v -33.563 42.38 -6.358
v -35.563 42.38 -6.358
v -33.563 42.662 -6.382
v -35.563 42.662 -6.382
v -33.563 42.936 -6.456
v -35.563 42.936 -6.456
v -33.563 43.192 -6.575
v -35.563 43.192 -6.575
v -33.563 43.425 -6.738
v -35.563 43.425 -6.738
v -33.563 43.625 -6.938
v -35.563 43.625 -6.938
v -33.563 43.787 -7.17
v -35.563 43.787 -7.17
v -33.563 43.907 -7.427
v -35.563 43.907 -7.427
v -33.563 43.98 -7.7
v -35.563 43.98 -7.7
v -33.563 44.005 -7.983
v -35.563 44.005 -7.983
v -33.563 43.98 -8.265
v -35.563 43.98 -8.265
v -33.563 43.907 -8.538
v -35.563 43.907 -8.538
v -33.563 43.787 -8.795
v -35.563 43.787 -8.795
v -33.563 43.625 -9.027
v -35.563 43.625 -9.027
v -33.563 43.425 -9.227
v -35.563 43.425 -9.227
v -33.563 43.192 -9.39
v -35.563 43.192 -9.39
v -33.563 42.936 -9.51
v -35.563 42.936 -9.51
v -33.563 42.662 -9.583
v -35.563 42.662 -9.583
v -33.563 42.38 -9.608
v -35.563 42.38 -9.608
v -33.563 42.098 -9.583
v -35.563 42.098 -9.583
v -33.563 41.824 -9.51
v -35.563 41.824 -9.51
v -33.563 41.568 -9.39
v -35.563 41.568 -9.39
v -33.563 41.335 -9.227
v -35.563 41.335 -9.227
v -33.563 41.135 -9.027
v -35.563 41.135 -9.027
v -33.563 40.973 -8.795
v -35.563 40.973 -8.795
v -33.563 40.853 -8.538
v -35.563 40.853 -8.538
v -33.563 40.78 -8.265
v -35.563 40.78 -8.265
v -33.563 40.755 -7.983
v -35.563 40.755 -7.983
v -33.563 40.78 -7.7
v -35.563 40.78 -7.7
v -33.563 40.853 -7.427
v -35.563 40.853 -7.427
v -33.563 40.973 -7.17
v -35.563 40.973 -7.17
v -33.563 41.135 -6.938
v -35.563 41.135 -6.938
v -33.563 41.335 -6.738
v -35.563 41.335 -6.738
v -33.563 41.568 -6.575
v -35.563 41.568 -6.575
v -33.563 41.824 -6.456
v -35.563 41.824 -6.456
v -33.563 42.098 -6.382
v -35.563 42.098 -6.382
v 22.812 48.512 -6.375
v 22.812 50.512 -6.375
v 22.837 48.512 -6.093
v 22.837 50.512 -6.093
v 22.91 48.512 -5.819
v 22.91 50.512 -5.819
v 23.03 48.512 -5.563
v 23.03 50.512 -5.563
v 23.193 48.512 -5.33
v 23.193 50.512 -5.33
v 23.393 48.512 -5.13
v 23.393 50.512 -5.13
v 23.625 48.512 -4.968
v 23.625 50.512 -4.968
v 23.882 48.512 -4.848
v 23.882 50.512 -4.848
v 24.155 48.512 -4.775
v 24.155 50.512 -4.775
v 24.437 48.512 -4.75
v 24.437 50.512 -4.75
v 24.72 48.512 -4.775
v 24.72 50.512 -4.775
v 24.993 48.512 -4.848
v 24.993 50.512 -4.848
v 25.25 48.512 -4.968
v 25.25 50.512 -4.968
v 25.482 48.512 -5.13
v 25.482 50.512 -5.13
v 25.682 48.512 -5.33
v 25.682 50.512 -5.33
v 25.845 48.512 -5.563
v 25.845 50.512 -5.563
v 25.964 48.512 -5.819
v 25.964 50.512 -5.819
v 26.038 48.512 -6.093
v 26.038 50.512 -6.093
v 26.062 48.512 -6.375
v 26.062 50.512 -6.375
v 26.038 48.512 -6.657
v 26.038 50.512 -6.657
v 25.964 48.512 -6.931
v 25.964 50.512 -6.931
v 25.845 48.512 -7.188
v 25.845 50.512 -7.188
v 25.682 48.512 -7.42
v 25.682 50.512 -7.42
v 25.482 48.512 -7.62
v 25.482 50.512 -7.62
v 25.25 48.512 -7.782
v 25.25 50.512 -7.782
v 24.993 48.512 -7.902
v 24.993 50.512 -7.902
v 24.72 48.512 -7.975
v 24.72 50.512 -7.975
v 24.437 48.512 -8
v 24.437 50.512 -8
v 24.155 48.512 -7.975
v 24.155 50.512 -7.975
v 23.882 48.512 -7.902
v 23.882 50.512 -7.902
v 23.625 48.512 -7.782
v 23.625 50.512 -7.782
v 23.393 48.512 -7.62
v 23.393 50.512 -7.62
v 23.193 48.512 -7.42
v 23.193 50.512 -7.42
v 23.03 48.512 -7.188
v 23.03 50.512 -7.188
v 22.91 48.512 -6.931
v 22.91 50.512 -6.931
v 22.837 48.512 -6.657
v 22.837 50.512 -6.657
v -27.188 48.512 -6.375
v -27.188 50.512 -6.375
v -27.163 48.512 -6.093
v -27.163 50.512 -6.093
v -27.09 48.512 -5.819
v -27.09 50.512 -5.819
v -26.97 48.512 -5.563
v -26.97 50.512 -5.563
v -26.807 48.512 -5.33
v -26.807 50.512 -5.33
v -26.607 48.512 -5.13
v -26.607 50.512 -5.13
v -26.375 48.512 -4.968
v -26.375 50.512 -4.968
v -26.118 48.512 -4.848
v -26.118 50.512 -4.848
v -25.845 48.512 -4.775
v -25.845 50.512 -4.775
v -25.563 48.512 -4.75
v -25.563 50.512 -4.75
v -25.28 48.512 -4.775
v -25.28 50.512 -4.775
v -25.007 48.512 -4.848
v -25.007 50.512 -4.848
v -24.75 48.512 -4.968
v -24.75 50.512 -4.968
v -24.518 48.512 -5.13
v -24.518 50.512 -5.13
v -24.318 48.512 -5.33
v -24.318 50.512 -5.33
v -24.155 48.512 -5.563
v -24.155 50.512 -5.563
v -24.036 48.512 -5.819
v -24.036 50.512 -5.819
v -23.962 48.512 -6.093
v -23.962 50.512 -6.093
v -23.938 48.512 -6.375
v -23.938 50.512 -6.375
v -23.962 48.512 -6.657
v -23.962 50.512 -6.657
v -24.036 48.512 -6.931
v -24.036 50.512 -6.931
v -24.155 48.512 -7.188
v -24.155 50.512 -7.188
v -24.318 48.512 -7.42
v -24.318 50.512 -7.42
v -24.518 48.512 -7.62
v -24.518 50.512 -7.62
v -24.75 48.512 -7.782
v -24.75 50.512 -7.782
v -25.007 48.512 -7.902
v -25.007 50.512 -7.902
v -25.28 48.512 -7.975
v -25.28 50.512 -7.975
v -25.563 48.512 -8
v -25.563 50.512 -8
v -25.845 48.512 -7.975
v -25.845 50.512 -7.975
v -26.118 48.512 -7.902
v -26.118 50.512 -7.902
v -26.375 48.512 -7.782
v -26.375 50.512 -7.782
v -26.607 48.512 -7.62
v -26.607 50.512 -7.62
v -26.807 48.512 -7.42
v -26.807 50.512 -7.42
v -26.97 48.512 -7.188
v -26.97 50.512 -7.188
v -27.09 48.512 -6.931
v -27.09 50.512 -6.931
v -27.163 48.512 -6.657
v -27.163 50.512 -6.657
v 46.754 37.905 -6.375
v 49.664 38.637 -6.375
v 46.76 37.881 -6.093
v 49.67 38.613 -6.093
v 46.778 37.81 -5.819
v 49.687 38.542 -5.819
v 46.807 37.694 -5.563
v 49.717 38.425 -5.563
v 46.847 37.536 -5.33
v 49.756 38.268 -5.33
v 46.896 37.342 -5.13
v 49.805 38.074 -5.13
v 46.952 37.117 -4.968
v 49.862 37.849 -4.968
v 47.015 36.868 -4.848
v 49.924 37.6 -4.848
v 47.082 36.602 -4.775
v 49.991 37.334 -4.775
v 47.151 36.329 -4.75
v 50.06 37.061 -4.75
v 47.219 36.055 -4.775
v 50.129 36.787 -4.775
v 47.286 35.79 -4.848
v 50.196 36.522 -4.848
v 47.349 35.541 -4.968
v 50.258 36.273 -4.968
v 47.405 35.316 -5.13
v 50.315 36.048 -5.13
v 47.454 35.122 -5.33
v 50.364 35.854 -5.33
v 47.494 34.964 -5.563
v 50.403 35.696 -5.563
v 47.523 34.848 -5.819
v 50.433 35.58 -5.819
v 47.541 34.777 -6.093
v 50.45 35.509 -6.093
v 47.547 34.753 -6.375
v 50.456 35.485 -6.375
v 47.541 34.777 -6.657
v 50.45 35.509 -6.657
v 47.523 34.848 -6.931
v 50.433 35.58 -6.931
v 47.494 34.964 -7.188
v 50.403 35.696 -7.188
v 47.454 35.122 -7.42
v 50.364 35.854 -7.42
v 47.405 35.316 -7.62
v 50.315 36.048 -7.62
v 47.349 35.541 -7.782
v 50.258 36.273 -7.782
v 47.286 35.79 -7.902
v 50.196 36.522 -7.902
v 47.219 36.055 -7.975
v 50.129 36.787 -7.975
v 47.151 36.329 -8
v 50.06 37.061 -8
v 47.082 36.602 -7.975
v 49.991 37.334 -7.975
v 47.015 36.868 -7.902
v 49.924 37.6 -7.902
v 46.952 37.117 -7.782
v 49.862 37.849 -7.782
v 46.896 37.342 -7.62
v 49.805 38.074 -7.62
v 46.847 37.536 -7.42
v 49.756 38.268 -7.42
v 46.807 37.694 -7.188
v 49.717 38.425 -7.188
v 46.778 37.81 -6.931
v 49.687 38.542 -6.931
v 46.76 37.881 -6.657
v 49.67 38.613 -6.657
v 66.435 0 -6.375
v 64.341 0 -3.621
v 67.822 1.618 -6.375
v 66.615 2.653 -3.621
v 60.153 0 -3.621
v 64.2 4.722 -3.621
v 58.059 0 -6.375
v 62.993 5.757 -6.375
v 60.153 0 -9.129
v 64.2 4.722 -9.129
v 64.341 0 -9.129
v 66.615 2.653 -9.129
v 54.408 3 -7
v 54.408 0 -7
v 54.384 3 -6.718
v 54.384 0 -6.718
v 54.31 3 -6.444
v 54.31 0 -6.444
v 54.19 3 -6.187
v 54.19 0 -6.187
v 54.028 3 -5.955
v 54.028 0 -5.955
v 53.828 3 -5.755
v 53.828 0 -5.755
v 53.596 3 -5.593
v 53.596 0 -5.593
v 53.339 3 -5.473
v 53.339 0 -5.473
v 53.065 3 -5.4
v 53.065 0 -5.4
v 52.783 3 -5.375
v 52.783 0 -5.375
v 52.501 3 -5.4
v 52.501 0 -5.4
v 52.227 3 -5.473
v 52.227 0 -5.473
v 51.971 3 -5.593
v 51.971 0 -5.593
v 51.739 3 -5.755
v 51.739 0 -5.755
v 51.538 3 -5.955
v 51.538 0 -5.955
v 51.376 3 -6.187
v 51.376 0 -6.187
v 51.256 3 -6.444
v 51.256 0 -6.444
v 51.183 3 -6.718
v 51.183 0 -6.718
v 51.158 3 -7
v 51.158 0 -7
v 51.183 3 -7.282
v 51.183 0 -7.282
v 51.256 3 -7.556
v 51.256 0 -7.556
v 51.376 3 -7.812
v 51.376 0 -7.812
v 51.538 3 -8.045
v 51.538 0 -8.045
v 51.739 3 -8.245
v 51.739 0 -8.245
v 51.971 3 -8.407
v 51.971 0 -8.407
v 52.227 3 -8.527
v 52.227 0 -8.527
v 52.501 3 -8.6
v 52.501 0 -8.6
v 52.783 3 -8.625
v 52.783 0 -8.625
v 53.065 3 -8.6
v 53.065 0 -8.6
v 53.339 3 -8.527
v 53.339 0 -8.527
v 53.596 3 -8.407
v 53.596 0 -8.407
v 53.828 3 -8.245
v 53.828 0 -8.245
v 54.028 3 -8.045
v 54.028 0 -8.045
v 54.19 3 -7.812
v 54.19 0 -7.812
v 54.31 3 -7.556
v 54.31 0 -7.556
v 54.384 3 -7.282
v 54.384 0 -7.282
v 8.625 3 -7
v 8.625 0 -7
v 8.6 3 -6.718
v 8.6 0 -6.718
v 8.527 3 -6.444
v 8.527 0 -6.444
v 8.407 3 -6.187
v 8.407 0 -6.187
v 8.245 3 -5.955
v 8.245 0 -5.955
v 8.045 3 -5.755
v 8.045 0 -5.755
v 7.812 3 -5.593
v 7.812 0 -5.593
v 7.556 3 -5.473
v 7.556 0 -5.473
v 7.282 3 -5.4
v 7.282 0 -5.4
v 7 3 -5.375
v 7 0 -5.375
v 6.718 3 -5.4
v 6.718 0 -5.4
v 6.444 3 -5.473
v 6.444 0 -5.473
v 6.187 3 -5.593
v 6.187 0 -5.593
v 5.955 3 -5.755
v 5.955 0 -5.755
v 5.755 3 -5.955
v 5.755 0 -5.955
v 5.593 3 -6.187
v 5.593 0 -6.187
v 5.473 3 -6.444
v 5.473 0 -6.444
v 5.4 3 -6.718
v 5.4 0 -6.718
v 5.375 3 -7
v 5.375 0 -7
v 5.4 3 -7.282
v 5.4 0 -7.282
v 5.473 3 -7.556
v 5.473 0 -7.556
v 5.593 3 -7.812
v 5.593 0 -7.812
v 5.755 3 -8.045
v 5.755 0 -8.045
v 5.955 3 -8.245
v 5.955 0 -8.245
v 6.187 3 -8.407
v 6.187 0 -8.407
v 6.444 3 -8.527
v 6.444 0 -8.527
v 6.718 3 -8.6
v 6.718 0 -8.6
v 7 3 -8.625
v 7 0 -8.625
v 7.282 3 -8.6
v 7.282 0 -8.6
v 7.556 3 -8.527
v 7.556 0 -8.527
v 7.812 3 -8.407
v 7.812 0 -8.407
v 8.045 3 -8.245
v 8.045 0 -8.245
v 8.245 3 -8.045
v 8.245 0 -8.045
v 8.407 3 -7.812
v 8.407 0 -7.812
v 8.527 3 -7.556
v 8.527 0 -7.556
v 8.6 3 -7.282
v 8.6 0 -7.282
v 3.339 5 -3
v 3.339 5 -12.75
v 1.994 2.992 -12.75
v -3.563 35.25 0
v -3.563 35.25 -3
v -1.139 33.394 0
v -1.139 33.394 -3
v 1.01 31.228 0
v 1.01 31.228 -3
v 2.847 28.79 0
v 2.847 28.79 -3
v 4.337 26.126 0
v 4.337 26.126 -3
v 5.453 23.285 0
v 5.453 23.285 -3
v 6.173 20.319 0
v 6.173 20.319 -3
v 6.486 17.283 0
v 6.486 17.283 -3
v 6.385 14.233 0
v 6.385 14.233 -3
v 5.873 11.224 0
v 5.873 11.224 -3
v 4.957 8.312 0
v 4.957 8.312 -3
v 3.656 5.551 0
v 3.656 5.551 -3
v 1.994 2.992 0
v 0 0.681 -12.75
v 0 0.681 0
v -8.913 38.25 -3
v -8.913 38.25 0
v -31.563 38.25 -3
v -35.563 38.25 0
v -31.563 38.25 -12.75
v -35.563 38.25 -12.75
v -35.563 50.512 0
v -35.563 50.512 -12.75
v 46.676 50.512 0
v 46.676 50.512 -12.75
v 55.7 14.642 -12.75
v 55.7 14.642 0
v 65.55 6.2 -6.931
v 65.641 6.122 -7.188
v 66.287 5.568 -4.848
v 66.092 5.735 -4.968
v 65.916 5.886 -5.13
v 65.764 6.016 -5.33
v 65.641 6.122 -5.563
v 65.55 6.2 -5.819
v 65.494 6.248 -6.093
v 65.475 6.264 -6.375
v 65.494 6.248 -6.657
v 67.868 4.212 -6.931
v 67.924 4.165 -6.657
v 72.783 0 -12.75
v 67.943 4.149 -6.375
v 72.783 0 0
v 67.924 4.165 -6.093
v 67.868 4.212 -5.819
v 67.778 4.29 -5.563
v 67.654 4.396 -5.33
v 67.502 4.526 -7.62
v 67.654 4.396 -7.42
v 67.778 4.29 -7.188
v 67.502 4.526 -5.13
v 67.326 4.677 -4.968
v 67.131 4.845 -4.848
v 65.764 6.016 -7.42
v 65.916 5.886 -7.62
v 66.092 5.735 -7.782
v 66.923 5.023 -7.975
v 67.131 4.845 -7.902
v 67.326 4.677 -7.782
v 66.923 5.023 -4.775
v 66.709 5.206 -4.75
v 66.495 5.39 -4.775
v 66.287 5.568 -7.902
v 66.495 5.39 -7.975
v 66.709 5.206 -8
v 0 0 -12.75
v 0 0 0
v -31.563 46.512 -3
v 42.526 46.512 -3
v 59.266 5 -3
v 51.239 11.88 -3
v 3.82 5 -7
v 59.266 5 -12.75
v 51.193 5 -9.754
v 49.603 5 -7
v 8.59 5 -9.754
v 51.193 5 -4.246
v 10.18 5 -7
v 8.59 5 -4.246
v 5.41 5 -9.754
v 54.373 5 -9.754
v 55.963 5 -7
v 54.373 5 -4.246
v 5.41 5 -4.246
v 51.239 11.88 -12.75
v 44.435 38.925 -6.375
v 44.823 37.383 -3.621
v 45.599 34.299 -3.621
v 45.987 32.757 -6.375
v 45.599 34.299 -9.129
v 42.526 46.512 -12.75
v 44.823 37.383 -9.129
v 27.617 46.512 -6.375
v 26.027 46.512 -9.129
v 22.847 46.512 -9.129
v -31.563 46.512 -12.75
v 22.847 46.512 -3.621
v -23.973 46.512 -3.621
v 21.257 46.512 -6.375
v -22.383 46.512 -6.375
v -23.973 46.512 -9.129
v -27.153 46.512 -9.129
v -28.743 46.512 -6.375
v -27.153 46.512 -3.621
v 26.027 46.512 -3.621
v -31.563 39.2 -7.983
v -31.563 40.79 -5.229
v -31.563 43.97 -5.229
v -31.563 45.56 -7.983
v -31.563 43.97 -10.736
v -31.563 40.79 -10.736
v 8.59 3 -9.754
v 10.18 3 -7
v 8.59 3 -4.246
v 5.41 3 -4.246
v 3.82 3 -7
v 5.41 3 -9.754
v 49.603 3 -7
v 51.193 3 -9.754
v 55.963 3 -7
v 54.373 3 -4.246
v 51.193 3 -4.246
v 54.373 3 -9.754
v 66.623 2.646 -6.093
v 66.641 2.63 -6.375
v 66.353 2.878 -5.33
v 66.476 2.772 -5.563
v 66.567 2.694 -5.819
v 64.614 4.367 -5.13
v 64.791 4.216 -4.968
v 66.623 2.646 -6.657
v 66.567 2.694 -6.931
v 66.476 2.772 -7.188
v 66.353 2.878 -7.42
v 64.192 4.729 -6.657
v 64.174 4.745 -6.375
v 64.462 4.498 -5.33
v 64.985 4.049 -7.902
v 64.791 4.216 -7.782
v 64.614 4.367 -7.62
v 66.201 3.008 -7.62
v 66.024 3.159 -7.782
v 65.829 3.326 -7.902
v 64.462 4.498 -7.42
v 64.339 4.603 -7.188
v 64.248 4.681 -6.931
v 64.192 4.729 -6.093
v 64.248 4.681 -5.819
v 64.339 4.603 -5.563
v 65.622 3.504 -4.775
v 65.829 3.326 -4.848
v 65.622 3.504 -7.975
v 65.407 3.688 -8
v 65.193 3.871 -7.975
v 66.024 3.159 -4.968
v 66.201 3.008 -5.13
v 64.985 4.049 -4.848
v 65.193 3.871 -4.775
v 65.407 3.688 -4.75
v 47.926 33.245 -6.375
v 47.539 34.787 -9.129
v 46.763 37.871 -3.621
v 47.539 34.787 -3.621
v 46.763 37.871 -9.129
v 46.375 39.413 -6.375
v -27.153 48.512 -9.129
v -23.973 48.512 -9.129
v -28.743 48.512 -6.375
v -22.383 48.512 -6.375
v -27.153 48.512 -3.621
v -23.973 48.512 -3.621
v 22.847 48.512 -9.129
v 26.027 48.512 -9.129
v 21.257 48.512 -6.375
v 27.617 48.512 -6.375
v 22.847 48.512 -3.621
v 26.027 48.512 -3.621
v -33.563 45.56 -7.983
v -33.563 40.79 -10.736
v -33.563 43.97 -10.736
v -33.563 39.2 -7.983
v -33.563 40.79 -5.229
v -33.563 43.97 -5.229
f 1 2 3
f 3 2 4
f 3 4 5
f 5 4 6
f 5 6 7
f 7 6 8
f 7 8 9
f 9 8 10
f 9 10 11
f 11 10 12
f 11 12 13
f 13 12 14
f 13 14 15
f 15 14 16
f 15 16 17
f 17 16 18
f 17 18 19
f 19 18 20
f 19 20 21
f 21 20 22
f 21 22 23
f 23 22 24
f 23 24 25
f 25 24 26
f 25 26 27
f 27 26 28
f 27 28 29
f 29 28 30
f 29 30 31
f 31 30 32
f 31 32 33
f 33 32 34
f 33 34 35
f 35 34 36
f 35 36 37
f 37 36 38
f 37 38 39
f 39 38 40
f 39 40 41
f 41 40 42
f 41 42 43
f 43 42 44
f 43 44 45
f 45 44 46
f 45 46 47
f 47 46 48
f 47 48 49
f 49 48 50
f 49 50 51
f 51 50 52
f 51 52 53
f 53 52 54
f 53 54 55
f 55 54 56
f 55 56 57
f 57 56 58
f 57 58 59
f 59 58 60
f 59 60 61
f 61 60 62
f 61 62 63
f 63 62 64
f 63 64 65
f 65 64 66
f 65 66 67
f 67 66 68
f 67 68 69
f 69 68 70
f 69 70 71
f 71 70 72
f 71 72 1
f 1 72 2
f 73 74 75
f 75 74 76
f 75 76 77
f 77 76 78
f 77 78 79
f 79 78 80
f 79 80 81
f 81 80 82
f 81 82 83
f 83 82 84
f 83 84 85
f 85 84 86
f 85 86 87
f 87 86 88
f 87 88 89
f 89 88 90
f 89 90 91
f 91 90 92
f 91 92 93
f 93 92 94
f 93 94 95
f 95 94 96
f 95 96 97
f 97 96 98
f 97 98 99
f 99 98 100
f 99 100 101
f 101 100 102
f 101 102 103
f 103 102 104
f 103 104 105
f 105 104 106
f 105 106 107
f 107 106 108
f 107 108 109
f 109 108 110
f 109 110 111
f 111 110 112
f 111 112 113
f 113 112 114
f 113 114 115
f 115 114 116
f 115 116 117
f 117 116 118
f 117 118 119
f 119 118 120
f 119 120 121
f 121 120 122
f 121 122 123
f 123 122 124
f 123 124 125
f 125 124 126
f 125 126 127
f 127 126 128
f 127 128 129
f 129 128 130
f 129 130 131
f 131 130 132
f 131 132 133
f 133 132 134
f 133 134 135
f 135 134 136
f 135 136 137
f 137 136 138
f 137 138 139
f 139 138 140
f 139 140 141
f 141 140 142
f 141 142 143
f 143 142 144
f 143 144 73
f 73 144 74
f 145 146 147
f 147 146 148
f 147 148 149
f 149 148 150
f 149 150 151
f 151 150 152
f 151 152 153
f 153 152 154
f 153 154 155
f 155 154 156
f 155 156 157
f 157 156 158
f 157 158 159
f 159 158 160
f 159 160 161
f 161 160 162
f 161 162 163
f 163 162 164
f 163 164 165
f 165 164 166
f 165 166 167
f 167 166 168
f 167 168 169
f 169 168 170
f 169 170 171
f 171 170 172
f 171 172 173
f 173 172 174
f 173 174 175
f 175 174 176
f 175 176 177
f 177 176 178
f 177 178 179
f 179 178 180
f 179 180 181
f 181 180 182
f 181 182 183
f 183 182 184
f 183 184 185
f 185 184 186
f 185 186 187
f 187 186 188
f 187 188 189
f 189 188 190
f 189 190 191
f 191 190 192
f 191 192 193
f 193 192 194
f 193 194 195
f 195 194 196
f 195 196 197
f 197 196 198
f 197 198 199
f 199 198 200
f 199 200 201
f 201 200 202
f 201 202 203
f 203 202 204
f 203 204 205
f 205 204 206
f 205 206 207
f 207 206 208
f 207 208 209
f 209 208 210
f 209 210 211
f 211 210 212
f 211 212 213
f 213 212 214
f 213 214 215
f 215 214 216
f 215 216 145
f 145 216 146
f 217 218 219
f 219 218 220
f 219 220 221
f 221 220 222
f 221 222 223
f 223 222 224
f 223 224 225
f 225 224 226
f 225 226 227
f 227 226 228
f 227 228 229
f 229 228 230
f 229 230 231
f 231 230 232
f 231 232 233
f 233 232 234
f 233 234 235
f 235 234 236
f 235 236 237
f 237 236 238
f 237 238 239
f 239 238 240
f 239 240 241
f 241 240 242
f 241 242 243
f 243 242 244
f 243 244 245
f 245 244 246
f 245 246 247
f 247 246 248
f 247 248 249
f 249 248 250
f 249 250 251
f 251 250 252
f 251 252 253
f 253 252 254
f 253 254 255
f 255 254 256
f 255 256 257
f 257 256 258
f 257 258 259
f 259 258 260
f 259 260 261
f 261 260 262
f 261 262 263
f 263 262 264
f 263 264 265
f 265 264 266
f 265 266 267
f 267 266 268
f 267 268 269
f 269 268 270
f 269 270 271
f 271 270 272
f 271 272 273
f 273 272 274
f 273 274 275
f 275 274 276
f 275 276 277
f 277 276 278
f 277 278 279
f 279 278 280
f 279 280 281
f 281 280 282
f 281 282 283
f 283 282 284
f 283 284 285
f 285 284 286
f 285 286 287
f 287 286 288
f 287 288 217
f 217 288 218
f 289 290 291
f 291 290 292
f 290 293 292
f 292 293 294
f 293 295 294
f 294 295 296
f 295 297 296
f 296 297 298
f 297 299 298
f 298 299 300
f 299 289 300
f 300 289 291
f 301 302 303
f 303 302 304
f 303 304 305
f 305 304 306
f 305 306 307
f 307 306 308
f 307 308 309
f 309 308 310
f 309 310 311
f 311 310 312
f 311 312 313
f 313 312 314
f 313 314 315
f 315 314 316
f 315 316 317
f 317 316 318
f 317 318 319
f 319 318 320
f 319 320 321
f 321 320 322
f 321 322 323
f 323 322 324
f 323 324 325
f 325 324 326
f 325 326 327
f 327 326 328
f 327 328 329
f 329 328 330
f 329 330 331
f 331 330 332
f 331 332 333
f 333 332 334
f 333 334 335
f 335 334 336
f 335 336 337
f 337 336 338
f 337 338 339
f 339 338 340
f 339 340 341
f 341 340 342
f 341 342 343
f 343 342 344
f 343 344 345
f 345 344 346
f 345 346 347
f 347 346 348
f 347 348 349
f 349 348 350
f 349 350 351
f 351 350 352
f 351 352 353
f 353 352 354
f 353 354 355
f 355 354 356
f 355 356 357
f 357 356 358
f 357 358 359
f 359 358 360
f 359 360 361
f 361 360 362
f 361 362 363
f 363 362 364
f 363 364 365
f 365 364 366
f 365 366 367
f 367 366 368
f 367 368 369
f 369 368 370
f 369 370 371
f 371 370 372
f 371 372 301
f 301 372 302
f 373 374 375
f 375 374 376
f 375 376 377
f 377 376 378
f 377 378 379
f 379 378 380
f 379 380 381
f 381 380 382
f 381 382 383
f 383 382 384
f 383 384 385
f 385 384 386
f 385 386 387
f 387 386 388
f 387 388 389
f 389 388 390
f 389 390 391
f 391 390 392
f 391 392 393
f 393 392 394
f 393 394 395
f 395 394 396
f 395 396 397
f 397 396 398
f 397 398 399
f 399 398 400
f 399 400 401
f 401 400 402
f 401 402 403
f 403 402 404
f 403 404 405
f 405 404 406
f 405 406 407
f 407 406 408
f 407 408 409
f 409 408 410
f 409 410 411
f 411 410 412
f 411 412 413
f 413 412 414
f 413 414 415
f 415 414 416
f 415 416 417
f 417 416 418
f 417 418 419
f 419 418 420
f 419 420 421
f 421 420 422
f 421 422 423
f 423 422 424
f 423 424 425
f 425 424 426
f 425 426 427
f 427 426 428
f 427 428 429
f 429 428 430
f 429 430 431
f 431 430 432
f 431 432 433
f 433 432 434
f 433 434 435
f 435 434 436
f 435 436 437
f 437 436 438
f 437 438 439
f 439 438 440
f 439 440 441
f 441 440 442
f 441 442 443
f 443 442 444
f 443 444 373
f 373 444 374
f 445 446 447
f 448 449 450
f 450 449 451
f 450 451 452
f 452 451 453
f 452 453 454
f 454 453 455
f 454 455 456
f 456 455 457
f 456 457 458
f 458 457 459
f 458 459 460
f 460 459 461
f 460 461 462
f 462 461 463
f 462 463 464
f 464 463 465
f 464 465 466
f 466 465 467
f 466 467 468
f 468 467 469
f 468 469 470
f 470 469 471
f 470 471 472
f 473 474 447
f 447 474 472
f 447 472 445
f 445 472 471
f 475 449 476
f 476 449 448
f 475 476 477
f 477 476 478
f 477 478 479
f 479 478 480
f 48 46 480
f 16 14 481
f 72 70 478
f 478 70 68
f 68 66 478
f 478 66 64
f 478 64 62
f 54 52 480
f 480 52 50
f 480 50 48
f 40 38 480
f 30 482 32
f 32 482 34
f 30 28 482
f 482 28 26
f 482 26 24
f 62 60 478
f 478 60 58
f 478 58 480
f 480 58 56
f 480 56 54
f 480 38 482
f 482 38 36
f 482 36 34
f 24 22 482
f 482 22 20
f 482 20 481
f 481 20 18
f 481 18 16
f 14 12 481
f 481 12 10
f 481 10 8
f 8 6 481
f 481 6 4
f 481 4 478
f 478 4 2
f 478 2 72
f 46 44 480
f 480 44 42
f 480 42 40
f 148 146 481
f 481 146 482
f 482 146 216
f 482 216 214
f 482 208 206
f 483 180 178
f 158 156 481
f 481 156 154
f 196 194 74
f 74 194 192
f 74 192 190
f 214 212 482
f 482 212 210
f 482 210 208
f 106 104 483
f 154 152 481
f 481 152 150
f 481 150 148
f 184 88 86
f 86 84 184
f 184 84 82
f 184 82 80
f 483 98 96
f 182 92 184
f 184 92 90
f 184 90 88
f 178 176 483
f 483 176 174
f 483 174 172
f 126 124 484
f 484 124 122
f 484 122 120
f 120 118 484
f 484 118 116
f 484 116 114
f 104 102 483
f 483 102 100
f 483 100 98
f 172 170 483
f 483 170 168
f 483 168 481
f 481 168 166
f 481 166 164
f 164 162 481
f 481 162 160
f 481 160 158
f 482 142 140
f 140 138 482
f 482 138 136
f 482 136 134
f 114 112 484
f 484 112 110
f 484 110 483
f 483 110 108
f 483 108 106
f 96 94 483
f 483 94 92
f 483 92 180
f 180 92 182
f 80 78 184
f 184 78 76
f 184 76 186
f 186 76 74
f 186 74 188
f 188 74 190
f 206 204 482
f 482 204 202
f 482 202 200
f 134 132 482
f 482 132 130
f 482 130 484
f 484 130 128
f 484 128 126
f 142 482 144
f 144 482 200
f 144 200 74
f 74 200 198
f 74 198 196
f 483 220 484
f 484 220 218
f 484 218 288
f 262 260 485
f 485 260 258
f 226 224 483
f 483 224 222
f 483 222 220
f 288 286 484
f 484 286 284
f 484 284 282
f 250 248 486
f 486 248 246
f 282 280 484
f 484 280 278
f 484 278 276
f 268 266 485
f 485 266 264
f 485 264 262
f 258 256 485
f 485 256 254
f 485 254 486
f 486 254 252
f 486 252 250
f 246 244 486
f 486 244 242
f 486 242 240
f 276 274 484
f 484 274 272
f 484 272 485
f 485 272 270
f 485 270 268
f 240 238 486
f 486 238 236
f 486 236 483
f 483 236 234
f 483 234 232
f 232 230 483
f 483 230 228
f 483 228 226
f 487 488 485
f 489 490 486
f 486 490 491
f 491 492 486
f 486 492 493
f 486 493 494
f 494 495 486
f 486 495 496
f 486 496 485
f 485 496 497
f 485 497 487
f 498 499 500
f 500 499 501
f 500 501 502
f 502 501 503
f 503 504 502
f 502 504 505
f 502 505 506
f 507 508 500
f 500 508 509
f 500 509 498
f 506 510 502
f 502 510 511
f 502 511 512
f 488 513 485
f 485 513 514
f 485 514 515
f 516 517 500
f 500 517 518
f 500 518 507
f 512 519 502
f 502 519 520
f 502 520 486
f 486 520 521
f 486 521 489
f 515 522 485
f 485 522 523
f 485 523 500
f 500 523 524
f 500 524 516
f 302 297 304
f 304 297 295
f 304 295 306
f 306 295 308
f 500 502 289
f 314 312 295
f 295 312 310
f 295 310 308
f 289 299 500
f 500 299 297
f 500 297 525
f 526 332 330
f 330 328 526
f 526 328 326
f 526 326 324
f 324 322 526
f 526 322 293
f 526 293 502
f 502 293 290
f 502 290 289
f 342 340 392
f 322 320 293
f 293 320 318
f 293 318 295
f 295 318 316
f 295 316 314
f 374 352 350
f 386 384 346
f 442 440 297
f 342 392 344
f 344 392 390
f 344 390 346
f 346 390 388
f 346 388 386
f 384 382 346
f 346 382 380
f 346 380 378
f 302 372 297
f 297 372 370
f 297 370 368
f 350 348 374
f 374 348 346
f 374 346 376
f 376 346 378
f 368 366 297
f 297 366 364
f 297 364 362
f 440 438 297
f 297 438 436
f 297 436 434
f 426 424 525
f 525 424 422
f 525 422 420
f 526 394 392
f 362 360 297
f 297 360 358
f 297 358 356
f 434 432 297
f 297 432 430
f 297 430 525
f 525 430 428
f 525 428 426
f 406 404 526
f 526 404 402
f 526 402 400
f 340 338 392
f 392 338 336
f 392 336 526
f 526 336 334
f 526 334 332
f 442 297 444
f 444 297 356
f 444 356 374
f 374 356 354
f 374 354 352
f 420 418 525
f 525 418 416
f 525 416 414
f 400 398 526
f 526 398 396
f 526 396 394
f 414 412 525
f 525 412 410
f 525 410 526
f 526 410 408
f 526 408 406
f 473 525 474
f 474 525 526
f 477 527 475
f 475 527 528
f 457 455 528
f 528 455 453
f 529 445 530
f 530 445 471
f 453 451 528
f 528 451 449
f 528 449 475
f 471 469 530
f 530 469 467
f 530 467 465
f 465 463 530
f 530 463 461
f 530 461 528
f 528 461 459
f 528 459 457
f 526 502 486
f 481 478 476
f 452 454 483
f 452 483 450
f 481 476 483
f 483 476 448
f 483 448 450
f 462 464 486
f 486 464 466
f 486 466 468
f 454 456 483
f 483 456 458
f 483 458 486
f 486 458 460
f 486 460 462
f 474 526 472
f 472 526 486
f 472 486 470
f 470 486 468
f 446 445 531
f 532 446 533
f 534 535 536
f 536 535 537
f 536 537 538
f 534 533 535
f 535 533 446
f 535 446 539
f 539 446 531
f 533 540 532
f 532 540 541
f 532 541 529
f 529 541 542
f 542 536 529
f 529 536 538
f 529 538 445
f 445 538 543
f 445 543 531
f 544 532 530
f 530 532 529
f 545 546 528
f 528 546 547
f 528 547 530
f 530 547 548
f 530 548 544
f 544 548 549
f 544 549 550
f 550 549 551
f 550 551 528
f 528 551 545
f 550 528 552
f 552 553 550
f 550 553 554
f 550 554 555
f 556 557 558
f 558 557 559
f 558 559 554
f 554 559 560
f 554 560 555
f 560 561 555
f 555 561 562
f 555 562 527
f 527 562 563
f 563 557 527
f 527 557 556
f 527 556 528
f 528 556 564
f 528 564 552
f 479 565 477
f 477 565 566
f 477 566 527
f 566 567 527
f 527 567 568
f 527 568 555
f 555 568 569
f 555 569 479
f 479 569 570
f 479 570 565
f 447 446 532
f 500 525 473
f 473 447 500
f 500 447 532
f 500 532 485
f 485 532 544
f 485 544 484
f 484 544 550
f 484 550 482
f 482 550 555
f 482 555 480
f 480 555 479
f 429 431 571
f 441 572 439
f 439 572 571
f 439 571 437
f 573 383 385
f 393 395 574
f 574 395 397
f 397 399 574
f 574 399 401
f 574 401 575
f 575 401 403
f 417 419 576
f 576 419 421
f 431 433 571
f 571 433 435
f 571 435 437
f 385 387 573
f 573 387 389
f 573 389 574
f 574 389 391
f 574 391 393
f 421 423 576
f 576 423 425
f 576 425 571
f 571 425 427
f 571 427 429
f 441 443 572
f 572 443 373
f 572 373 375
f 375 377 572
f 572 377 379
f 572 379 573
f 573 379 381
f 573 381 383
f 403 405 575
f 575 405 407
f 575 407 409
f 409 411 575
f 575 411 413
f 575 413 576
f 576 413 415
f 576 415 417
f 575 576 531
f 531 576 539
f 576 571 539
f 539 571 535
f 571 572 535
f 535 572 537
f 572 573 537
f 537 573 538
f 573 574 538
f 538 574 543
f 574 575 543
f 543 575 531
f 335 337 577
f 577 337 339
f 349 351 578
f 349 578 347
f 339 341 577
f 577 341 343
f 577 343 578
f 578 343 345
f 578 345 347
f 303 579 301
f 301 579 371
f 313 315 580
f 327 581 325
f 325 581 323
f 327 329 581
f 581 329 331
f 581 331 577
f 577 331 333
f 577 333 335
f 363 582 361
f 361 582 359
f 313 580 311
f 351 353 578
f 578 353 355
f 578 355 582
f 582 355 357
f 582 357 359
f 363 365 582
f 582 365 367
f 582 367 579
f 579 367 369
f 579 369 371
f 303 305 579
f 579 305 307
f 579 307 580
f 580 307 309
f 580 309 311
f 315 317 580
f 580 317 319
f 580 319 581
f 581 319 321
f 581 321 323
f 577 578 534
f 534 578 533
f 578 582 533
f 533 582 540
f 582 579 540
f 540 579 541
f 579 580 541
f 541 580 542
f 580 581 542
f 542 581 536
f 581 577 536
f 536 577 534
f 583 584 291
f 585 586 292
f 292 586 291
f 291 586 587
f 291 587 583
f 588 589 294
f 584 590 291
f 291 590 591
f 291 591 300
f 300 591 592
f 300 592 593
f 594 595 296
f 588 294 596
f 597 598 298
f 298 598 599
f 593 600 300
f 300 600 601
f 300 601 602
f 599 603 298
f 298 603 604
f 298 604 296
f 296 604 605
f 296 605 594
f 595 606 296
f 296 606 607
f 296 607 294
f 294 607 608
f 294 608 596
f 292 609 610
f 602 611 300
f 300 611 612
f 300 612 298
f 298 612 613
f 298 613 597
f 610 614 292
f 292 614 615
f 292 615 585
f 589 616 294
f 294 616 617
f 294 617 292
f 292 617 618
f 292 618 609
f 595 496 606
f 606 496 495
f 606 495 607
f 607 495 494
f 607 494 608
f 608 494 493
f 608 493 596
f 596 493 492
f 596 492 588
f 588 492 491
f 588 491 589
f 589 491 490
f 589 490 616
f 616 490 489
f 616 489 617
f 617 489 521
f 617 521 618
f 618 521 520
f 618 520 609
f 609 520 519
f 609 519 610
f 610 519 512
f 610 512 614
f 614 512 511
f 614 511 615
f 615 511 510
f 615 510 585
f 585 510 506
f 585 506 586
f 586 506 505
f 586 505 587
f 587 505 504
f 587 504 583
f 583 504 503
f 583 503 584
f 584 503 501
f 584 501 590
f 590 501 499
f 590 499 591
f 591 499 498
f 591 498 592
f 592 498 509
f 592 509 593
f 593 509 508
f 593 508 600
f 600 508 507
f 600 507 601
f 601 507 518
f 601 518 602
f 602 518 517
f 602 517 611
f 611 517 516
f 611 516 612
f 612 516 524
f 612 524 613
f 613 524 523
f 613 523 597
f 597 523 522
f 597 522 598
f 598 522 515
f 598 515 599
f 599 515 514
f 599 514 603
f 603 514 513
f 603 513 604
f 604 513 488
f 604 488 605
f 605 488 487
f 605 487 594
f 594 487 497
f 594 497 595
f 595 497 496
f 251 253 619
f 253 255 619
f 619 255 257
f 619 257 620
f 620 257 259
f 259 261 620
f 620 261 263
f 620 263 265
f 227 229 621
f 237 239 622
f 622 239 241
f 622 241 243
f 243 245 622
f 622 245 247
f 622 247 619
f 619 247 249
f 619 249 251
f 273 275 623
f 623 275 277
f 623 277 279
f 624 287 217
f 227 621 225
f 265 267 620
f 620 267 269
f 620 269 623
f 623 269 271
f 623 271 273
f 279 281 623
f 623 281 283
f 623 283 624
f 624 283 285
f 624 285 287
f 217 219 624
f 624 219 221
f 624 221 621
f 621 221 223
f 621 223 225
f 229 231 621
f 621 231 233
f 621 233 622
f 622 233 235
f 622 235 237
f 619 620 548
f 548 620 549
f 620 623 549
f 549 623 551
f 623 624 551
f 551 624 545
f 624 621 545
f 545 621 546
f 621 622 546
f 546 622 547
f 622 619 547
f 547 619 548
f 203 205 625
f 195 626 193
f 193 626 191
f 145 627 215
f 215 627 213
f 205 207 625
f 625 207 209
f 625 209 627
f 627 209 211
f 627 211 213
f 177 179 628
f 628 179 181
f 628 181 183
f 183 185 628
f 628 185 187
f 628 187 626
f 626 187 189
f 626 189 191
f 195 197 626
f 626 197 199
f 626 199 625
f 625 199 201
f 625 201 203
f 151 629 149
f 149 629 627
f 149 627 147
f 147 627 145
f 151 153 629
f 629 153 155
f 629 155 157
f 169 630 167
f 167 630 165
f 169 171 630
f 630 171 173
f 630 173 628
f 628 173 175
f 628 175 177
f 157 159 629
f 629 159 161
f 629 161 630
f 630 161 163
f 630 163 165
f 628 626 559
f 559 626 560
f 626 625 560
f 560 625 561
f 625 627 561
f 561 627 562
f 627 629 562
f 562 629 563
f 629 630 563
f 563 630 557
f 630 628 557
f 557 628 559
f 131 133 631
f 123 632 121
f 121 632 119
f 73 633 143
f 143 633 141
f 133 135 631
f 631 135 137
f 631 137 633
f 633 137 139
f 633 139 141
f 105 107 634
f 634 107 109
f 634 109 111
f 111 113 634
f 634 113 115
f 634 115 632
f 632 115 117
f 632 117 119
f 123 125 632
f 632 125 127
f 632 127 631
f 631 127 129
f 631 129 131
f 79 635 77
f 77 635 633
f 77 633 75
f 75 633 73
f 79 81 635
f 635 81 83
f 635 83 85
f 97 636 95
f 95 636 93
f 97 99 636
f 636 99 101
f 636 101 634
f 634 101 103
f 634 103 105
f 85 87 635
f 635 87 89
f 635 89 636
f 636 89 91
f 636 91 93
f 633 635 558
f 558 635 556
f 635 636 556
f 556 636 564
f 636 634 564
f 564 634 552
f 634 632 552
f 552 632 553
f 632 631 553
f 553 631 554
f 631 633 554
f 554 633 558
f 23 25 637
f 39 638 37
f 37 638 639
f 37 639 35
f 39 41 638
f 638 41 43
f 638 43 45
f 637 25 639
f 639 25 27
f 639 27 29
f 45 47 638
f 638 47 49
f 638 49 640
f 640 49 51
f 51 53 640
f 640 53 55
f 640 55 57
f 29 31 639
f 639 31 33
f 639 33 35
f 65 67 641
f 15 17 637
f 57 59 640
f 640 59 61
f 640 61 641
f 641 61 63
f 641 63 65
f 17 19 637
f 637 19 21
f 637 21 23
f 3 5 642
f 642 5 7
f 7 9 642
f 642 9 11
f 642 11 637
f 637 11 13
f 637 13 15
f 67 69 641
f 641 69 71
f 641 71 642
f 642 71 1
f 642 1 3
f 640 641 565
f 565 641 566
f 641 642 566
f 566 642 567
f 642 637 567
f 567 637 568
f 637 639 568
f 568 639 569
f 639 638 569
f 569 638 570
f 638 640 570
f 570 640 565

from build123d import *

# Parameters (mm, degrees)
SALIENTE_EXTRUIR1_DEPTH = 3
SALIENTE_EXTRUIR2_DEPTH = 9.75
CROQUIS6_R              = 1.625
CORTAR_EXTRUIR1_DEPTH   = 5
CORTAR_EXTRUIR2_DEPTH   = 2
CORTAR_EXTRUIR4_DEPTH   = 10
CROQUIS10_R             = 1.625
SALIENTE_EXTRUIR3_DEPTH = 2
CROQUIS12_R             = 1.625
CORTAR_EXTRUIR5_DEPTH   = 5
CORTAR_EXTRUIR6_DEPTH   = 2
CROQUIS14_R             = 1.625
CORTAR_EXTRUIR7_DEPTH   = 4
CORTAR_EXTRUIR8_DEPTH   = 2
CROQUIS17_R             = 1.625
CORTAR_EXTRUIR9_DEPTH   = 4
CORTAR_EXTRUIR10_DEPTH  = 2


with BuildPart() as part:
    # Croquis1 → Saliente-Extruir1 (new body)
    with BuildSketch(Plane.XY):
        with BuildLine():
            Line((0, 0.68070798), (0, 0))
            Line((0, 0), (72.78319995, 0))
            Line((72.78319995, 0), (55.699999998, 14.642073221))
            Line((55.699999998, 14.642073221), (46.67593732, 50.511923567))
            Line((46.67593732, 50.511923567), (-35.562657036, 50.511923567))
            Line((-35.562657036, 50.511923567), (-35.562657036, 38.25))
            Line((-35.562657036, 38.25), (-8.913300435, 38.25))
            Line((-8.913300435, 38.25), (-3.562657036, 35.25))
            ThreePointArc((-3.562657036, 35.25), (6.381456753, 18.806597842), (0, 0.68070798))
        make_face()
    extrude(amount=-SALIENTE_EXTRUIR1_DEPTH)

    # Croquis5 → Saliente-Extruir2 (add)
    with BuildSketch(Plane(origin=(0, 0, -3), x_dir=(-1, 0, 0), z_dir=(0, 0, -1))):
        with BuildLine():
            Line((-51.238983488, 11.880365447), (-59.266443595, 5))
            Line((-59.266443595, 5), (-3.339079606, 5))
            ThreePointArc((-3.339079606, 5), (-1.801031086, 2.738703104), (0, 0.68070798))
            Line((0, 0.68070798), (0, 0))
            Line((0, 0), (-72.78319995, 0))
            Line((-72.78319995, 0), (-55.699999998, 14.642073221))
            Line((-55.699999998, 14.642073221), (-46.67593732, 50.511923567))
            Line((-46.67593732, 50.511923567), (35.562657036, 50.511923567))
            Line((35.562657036, 50.511923567), (35.562657036, 38.25))
            Line((35.562657036, 38.25), (31.562657036, 38.25))
            Line((31.562657036, 38.25), (31.562657036, 46.511923567))
            Line((31.562657036, 46.511923567), (-42.526447804, 46.511923567))
            Line((-42.526447804, 46.511923567), (-51.238983488, 11.880365447))
        make_face()
    extrude(amount=SALIENTE_EXTRUIR2_DEPTH)

    # Croquis6 → Cortar-Extruir1 (cut)
    with BuildSketch(Plane.XZ):
        with Locations((6.999999998, -7)):
            Circle(CROQUIS6_R)
        with Locations((52.78319995, -7)):
            Circle(CROQUIS6_R)
    extrude(amount=-CORTAR_EXTRUIR1_DEPTH, mode=Mode.SUBTRACT)

    # Croquis8 → Cortar-Extruir2 (cut)
    with BuildSketch(Plane(origin=(0, 5, 0), x_dir=(1, 0, 0), z_dir=(0, 1, 0))):
        Polygon((3.819999998, 7), (5.409999998, 4.246039216), (8.589999998, 4.246039216), (10.179999998, 7), (8.589999998, 9.753960784), (5.409999998, 9.753960784), align=None)
        Polygon((49.60319995, 7), (51.19319995, 4.246039216), (54.37319995, 4.246039216), (55.96319995, 7), (54.37319995, 9.753960784), (51.19319995, 9.753960784), align=None)
    extrude(amount=-CORTAR_EXTRUIR2_DEPTH, mode=Mode.SUBTRACT)

    # Croquis9 → Cortar-Extruir4 (cut)
    with BuildSketch(Plane(origin=(30.824200619, 35.963211942, 0), x_dir=(0.759271307, -0.650774217, 0), z_dir=(0.650774217, 0.759271307, 0))):
        Polygon((50.442195378, 6.375), (48.852195378, 9.128960784), (45.672195378, 9.128960784), (44.082195378, 6.375), (45.672195378, 3.621039216), (48.852195378, 3.621039216), align=None)
    extrude(amount=-CORTAR_EXTRUIR4_DEPTH, mode=Mode.SUBTRACT)

    # Croquis10 → Saliente-Extruir3 (add)
    with BuildSketch(Plane(origin=(30.824200619, 35.963211942, 0), x_dir=(0.759271307, -0.650774217, 0), z_dir=(0.650774217, 0.759271307, 0))):
        Polygon((50.442195378, 6.375), (48.852195378, 9.128960784), (45.672195378, 9.128960784), (44.082195378, 6.375), (45.672195378, 3.621039216), (48.852195378, 3.621039216), align=None)
        with Locations((47.262195378, 6.375)):
            Circle(CROQUIS10_R, mode=Mode.SUBTRACT)
    extrude(amount=-SALIENTE_EXTRUIR3_DEPTH)

    # Croquis12 → Cortar-Extruir5 (cut)
    with BuildSketch(Plane(origin=(55.848866467, 14.050342186, 0), x_dir=(0, 0, -1), z_dir=(0.969781373, 0.24397559, 0))):
        with Locations((6.375, 23.727396855)):
            Circle(CROQUIS12_R)
    extrude(amount=-CORTAR_EXTRUIR5_DEPTH, mode=Mode.SUBTRACT)

    # Croquis13 → Cortar-Extruir6 (cut)
    with BuildSketch(Plane(origin=(50.999959602, 12.830464236, 0), x_dir=(0, 0, 1), z_dir=(-0.969781373, -0.24397559, 0))):
        Polygon((-6.375, 20.547396855), (-3.621039216, 22.137396855), (-3.621039216, 25.317396855), (-6.375, 26.907396855), (-9.128960784, 25.317396855), (-9.128960784, 22.137396855), align=None)
    extrude(amount=-CORTAR_EXTRUIR6_DEPTH, mode=Mode.SUBTRACT)

    # Croquis14 → Cortar-Extruir7 (cut)
    with BuildSketch(Plane(origin=(0, 50.511923567, 0), x_dir=(1, 0, 0), z_dir=(0, 1, 0))):
        with Locations((-25.562657036, 6.375)):
            Circle(CROQUIS14_R)
        with Locations((24.437342964, 6.375)):
            Circle(CROQUIS14_R)
    extrude(amount=-CORTAR_EXTRUIR7_DEPTH, mode=Mode.SUBTRACT)

    # Croquis15 → Cortar-Extruir8 (cut)
    with BuildSketch(Plane.XZ.offset(-46.511923567)):
        Polygon((-22.382657036, -6.375), (-23.972657036, -3.621039216), (-27.152657036, -3.621039216), (-28.742657036, -6.375), (-27.152657036, -9.128960784), (-23.972657036, -9.128960784), align=None)
        Polygon((21.257342964, -6.375), (22.847342964, -9.128960784), (26.027342964, -9.128960784), (27.617342964, -6.375), (26.027342964, -3.621039216), (22.847342964, -3.621039216), align=None)
    extrude(amount=-CORTAR_EXTRUIR8_DEPTH, mode=Mode.SUBTRACT)

    # Croquis17 → Cortar-Extruir9 (cut)
    with BuildSketch(Plane.ZY.offset(35.562657036)):
        with Locations((-7.982505966, 42.38)):
            Circle(CROQUIS17_R)
    extrude(amount=-CORTAR_EXTRUIR9_DEPTH, mode=Mode.SUBTRACT)

    # Croquis18 → Cortar-Extruir10 (cut)
    with BuildSketch(Plane(origin=(-31.562657036, 0, 0), x_dir=(0, 0, -1), z_dir=(1, 0, 0))):
        Polygon((7.982505966, 39.2), (10.73646675, 40.79), (10.73646675, 43.97), (7.982505966, 45.56), (5.228545182, 43.97), (5.228545182, 40.79), align=None)
    extrude(amount=-CORTAR_EXTRUIR10_DEPTH, mode=Mode.SUBTRACT)


solid = part.part
